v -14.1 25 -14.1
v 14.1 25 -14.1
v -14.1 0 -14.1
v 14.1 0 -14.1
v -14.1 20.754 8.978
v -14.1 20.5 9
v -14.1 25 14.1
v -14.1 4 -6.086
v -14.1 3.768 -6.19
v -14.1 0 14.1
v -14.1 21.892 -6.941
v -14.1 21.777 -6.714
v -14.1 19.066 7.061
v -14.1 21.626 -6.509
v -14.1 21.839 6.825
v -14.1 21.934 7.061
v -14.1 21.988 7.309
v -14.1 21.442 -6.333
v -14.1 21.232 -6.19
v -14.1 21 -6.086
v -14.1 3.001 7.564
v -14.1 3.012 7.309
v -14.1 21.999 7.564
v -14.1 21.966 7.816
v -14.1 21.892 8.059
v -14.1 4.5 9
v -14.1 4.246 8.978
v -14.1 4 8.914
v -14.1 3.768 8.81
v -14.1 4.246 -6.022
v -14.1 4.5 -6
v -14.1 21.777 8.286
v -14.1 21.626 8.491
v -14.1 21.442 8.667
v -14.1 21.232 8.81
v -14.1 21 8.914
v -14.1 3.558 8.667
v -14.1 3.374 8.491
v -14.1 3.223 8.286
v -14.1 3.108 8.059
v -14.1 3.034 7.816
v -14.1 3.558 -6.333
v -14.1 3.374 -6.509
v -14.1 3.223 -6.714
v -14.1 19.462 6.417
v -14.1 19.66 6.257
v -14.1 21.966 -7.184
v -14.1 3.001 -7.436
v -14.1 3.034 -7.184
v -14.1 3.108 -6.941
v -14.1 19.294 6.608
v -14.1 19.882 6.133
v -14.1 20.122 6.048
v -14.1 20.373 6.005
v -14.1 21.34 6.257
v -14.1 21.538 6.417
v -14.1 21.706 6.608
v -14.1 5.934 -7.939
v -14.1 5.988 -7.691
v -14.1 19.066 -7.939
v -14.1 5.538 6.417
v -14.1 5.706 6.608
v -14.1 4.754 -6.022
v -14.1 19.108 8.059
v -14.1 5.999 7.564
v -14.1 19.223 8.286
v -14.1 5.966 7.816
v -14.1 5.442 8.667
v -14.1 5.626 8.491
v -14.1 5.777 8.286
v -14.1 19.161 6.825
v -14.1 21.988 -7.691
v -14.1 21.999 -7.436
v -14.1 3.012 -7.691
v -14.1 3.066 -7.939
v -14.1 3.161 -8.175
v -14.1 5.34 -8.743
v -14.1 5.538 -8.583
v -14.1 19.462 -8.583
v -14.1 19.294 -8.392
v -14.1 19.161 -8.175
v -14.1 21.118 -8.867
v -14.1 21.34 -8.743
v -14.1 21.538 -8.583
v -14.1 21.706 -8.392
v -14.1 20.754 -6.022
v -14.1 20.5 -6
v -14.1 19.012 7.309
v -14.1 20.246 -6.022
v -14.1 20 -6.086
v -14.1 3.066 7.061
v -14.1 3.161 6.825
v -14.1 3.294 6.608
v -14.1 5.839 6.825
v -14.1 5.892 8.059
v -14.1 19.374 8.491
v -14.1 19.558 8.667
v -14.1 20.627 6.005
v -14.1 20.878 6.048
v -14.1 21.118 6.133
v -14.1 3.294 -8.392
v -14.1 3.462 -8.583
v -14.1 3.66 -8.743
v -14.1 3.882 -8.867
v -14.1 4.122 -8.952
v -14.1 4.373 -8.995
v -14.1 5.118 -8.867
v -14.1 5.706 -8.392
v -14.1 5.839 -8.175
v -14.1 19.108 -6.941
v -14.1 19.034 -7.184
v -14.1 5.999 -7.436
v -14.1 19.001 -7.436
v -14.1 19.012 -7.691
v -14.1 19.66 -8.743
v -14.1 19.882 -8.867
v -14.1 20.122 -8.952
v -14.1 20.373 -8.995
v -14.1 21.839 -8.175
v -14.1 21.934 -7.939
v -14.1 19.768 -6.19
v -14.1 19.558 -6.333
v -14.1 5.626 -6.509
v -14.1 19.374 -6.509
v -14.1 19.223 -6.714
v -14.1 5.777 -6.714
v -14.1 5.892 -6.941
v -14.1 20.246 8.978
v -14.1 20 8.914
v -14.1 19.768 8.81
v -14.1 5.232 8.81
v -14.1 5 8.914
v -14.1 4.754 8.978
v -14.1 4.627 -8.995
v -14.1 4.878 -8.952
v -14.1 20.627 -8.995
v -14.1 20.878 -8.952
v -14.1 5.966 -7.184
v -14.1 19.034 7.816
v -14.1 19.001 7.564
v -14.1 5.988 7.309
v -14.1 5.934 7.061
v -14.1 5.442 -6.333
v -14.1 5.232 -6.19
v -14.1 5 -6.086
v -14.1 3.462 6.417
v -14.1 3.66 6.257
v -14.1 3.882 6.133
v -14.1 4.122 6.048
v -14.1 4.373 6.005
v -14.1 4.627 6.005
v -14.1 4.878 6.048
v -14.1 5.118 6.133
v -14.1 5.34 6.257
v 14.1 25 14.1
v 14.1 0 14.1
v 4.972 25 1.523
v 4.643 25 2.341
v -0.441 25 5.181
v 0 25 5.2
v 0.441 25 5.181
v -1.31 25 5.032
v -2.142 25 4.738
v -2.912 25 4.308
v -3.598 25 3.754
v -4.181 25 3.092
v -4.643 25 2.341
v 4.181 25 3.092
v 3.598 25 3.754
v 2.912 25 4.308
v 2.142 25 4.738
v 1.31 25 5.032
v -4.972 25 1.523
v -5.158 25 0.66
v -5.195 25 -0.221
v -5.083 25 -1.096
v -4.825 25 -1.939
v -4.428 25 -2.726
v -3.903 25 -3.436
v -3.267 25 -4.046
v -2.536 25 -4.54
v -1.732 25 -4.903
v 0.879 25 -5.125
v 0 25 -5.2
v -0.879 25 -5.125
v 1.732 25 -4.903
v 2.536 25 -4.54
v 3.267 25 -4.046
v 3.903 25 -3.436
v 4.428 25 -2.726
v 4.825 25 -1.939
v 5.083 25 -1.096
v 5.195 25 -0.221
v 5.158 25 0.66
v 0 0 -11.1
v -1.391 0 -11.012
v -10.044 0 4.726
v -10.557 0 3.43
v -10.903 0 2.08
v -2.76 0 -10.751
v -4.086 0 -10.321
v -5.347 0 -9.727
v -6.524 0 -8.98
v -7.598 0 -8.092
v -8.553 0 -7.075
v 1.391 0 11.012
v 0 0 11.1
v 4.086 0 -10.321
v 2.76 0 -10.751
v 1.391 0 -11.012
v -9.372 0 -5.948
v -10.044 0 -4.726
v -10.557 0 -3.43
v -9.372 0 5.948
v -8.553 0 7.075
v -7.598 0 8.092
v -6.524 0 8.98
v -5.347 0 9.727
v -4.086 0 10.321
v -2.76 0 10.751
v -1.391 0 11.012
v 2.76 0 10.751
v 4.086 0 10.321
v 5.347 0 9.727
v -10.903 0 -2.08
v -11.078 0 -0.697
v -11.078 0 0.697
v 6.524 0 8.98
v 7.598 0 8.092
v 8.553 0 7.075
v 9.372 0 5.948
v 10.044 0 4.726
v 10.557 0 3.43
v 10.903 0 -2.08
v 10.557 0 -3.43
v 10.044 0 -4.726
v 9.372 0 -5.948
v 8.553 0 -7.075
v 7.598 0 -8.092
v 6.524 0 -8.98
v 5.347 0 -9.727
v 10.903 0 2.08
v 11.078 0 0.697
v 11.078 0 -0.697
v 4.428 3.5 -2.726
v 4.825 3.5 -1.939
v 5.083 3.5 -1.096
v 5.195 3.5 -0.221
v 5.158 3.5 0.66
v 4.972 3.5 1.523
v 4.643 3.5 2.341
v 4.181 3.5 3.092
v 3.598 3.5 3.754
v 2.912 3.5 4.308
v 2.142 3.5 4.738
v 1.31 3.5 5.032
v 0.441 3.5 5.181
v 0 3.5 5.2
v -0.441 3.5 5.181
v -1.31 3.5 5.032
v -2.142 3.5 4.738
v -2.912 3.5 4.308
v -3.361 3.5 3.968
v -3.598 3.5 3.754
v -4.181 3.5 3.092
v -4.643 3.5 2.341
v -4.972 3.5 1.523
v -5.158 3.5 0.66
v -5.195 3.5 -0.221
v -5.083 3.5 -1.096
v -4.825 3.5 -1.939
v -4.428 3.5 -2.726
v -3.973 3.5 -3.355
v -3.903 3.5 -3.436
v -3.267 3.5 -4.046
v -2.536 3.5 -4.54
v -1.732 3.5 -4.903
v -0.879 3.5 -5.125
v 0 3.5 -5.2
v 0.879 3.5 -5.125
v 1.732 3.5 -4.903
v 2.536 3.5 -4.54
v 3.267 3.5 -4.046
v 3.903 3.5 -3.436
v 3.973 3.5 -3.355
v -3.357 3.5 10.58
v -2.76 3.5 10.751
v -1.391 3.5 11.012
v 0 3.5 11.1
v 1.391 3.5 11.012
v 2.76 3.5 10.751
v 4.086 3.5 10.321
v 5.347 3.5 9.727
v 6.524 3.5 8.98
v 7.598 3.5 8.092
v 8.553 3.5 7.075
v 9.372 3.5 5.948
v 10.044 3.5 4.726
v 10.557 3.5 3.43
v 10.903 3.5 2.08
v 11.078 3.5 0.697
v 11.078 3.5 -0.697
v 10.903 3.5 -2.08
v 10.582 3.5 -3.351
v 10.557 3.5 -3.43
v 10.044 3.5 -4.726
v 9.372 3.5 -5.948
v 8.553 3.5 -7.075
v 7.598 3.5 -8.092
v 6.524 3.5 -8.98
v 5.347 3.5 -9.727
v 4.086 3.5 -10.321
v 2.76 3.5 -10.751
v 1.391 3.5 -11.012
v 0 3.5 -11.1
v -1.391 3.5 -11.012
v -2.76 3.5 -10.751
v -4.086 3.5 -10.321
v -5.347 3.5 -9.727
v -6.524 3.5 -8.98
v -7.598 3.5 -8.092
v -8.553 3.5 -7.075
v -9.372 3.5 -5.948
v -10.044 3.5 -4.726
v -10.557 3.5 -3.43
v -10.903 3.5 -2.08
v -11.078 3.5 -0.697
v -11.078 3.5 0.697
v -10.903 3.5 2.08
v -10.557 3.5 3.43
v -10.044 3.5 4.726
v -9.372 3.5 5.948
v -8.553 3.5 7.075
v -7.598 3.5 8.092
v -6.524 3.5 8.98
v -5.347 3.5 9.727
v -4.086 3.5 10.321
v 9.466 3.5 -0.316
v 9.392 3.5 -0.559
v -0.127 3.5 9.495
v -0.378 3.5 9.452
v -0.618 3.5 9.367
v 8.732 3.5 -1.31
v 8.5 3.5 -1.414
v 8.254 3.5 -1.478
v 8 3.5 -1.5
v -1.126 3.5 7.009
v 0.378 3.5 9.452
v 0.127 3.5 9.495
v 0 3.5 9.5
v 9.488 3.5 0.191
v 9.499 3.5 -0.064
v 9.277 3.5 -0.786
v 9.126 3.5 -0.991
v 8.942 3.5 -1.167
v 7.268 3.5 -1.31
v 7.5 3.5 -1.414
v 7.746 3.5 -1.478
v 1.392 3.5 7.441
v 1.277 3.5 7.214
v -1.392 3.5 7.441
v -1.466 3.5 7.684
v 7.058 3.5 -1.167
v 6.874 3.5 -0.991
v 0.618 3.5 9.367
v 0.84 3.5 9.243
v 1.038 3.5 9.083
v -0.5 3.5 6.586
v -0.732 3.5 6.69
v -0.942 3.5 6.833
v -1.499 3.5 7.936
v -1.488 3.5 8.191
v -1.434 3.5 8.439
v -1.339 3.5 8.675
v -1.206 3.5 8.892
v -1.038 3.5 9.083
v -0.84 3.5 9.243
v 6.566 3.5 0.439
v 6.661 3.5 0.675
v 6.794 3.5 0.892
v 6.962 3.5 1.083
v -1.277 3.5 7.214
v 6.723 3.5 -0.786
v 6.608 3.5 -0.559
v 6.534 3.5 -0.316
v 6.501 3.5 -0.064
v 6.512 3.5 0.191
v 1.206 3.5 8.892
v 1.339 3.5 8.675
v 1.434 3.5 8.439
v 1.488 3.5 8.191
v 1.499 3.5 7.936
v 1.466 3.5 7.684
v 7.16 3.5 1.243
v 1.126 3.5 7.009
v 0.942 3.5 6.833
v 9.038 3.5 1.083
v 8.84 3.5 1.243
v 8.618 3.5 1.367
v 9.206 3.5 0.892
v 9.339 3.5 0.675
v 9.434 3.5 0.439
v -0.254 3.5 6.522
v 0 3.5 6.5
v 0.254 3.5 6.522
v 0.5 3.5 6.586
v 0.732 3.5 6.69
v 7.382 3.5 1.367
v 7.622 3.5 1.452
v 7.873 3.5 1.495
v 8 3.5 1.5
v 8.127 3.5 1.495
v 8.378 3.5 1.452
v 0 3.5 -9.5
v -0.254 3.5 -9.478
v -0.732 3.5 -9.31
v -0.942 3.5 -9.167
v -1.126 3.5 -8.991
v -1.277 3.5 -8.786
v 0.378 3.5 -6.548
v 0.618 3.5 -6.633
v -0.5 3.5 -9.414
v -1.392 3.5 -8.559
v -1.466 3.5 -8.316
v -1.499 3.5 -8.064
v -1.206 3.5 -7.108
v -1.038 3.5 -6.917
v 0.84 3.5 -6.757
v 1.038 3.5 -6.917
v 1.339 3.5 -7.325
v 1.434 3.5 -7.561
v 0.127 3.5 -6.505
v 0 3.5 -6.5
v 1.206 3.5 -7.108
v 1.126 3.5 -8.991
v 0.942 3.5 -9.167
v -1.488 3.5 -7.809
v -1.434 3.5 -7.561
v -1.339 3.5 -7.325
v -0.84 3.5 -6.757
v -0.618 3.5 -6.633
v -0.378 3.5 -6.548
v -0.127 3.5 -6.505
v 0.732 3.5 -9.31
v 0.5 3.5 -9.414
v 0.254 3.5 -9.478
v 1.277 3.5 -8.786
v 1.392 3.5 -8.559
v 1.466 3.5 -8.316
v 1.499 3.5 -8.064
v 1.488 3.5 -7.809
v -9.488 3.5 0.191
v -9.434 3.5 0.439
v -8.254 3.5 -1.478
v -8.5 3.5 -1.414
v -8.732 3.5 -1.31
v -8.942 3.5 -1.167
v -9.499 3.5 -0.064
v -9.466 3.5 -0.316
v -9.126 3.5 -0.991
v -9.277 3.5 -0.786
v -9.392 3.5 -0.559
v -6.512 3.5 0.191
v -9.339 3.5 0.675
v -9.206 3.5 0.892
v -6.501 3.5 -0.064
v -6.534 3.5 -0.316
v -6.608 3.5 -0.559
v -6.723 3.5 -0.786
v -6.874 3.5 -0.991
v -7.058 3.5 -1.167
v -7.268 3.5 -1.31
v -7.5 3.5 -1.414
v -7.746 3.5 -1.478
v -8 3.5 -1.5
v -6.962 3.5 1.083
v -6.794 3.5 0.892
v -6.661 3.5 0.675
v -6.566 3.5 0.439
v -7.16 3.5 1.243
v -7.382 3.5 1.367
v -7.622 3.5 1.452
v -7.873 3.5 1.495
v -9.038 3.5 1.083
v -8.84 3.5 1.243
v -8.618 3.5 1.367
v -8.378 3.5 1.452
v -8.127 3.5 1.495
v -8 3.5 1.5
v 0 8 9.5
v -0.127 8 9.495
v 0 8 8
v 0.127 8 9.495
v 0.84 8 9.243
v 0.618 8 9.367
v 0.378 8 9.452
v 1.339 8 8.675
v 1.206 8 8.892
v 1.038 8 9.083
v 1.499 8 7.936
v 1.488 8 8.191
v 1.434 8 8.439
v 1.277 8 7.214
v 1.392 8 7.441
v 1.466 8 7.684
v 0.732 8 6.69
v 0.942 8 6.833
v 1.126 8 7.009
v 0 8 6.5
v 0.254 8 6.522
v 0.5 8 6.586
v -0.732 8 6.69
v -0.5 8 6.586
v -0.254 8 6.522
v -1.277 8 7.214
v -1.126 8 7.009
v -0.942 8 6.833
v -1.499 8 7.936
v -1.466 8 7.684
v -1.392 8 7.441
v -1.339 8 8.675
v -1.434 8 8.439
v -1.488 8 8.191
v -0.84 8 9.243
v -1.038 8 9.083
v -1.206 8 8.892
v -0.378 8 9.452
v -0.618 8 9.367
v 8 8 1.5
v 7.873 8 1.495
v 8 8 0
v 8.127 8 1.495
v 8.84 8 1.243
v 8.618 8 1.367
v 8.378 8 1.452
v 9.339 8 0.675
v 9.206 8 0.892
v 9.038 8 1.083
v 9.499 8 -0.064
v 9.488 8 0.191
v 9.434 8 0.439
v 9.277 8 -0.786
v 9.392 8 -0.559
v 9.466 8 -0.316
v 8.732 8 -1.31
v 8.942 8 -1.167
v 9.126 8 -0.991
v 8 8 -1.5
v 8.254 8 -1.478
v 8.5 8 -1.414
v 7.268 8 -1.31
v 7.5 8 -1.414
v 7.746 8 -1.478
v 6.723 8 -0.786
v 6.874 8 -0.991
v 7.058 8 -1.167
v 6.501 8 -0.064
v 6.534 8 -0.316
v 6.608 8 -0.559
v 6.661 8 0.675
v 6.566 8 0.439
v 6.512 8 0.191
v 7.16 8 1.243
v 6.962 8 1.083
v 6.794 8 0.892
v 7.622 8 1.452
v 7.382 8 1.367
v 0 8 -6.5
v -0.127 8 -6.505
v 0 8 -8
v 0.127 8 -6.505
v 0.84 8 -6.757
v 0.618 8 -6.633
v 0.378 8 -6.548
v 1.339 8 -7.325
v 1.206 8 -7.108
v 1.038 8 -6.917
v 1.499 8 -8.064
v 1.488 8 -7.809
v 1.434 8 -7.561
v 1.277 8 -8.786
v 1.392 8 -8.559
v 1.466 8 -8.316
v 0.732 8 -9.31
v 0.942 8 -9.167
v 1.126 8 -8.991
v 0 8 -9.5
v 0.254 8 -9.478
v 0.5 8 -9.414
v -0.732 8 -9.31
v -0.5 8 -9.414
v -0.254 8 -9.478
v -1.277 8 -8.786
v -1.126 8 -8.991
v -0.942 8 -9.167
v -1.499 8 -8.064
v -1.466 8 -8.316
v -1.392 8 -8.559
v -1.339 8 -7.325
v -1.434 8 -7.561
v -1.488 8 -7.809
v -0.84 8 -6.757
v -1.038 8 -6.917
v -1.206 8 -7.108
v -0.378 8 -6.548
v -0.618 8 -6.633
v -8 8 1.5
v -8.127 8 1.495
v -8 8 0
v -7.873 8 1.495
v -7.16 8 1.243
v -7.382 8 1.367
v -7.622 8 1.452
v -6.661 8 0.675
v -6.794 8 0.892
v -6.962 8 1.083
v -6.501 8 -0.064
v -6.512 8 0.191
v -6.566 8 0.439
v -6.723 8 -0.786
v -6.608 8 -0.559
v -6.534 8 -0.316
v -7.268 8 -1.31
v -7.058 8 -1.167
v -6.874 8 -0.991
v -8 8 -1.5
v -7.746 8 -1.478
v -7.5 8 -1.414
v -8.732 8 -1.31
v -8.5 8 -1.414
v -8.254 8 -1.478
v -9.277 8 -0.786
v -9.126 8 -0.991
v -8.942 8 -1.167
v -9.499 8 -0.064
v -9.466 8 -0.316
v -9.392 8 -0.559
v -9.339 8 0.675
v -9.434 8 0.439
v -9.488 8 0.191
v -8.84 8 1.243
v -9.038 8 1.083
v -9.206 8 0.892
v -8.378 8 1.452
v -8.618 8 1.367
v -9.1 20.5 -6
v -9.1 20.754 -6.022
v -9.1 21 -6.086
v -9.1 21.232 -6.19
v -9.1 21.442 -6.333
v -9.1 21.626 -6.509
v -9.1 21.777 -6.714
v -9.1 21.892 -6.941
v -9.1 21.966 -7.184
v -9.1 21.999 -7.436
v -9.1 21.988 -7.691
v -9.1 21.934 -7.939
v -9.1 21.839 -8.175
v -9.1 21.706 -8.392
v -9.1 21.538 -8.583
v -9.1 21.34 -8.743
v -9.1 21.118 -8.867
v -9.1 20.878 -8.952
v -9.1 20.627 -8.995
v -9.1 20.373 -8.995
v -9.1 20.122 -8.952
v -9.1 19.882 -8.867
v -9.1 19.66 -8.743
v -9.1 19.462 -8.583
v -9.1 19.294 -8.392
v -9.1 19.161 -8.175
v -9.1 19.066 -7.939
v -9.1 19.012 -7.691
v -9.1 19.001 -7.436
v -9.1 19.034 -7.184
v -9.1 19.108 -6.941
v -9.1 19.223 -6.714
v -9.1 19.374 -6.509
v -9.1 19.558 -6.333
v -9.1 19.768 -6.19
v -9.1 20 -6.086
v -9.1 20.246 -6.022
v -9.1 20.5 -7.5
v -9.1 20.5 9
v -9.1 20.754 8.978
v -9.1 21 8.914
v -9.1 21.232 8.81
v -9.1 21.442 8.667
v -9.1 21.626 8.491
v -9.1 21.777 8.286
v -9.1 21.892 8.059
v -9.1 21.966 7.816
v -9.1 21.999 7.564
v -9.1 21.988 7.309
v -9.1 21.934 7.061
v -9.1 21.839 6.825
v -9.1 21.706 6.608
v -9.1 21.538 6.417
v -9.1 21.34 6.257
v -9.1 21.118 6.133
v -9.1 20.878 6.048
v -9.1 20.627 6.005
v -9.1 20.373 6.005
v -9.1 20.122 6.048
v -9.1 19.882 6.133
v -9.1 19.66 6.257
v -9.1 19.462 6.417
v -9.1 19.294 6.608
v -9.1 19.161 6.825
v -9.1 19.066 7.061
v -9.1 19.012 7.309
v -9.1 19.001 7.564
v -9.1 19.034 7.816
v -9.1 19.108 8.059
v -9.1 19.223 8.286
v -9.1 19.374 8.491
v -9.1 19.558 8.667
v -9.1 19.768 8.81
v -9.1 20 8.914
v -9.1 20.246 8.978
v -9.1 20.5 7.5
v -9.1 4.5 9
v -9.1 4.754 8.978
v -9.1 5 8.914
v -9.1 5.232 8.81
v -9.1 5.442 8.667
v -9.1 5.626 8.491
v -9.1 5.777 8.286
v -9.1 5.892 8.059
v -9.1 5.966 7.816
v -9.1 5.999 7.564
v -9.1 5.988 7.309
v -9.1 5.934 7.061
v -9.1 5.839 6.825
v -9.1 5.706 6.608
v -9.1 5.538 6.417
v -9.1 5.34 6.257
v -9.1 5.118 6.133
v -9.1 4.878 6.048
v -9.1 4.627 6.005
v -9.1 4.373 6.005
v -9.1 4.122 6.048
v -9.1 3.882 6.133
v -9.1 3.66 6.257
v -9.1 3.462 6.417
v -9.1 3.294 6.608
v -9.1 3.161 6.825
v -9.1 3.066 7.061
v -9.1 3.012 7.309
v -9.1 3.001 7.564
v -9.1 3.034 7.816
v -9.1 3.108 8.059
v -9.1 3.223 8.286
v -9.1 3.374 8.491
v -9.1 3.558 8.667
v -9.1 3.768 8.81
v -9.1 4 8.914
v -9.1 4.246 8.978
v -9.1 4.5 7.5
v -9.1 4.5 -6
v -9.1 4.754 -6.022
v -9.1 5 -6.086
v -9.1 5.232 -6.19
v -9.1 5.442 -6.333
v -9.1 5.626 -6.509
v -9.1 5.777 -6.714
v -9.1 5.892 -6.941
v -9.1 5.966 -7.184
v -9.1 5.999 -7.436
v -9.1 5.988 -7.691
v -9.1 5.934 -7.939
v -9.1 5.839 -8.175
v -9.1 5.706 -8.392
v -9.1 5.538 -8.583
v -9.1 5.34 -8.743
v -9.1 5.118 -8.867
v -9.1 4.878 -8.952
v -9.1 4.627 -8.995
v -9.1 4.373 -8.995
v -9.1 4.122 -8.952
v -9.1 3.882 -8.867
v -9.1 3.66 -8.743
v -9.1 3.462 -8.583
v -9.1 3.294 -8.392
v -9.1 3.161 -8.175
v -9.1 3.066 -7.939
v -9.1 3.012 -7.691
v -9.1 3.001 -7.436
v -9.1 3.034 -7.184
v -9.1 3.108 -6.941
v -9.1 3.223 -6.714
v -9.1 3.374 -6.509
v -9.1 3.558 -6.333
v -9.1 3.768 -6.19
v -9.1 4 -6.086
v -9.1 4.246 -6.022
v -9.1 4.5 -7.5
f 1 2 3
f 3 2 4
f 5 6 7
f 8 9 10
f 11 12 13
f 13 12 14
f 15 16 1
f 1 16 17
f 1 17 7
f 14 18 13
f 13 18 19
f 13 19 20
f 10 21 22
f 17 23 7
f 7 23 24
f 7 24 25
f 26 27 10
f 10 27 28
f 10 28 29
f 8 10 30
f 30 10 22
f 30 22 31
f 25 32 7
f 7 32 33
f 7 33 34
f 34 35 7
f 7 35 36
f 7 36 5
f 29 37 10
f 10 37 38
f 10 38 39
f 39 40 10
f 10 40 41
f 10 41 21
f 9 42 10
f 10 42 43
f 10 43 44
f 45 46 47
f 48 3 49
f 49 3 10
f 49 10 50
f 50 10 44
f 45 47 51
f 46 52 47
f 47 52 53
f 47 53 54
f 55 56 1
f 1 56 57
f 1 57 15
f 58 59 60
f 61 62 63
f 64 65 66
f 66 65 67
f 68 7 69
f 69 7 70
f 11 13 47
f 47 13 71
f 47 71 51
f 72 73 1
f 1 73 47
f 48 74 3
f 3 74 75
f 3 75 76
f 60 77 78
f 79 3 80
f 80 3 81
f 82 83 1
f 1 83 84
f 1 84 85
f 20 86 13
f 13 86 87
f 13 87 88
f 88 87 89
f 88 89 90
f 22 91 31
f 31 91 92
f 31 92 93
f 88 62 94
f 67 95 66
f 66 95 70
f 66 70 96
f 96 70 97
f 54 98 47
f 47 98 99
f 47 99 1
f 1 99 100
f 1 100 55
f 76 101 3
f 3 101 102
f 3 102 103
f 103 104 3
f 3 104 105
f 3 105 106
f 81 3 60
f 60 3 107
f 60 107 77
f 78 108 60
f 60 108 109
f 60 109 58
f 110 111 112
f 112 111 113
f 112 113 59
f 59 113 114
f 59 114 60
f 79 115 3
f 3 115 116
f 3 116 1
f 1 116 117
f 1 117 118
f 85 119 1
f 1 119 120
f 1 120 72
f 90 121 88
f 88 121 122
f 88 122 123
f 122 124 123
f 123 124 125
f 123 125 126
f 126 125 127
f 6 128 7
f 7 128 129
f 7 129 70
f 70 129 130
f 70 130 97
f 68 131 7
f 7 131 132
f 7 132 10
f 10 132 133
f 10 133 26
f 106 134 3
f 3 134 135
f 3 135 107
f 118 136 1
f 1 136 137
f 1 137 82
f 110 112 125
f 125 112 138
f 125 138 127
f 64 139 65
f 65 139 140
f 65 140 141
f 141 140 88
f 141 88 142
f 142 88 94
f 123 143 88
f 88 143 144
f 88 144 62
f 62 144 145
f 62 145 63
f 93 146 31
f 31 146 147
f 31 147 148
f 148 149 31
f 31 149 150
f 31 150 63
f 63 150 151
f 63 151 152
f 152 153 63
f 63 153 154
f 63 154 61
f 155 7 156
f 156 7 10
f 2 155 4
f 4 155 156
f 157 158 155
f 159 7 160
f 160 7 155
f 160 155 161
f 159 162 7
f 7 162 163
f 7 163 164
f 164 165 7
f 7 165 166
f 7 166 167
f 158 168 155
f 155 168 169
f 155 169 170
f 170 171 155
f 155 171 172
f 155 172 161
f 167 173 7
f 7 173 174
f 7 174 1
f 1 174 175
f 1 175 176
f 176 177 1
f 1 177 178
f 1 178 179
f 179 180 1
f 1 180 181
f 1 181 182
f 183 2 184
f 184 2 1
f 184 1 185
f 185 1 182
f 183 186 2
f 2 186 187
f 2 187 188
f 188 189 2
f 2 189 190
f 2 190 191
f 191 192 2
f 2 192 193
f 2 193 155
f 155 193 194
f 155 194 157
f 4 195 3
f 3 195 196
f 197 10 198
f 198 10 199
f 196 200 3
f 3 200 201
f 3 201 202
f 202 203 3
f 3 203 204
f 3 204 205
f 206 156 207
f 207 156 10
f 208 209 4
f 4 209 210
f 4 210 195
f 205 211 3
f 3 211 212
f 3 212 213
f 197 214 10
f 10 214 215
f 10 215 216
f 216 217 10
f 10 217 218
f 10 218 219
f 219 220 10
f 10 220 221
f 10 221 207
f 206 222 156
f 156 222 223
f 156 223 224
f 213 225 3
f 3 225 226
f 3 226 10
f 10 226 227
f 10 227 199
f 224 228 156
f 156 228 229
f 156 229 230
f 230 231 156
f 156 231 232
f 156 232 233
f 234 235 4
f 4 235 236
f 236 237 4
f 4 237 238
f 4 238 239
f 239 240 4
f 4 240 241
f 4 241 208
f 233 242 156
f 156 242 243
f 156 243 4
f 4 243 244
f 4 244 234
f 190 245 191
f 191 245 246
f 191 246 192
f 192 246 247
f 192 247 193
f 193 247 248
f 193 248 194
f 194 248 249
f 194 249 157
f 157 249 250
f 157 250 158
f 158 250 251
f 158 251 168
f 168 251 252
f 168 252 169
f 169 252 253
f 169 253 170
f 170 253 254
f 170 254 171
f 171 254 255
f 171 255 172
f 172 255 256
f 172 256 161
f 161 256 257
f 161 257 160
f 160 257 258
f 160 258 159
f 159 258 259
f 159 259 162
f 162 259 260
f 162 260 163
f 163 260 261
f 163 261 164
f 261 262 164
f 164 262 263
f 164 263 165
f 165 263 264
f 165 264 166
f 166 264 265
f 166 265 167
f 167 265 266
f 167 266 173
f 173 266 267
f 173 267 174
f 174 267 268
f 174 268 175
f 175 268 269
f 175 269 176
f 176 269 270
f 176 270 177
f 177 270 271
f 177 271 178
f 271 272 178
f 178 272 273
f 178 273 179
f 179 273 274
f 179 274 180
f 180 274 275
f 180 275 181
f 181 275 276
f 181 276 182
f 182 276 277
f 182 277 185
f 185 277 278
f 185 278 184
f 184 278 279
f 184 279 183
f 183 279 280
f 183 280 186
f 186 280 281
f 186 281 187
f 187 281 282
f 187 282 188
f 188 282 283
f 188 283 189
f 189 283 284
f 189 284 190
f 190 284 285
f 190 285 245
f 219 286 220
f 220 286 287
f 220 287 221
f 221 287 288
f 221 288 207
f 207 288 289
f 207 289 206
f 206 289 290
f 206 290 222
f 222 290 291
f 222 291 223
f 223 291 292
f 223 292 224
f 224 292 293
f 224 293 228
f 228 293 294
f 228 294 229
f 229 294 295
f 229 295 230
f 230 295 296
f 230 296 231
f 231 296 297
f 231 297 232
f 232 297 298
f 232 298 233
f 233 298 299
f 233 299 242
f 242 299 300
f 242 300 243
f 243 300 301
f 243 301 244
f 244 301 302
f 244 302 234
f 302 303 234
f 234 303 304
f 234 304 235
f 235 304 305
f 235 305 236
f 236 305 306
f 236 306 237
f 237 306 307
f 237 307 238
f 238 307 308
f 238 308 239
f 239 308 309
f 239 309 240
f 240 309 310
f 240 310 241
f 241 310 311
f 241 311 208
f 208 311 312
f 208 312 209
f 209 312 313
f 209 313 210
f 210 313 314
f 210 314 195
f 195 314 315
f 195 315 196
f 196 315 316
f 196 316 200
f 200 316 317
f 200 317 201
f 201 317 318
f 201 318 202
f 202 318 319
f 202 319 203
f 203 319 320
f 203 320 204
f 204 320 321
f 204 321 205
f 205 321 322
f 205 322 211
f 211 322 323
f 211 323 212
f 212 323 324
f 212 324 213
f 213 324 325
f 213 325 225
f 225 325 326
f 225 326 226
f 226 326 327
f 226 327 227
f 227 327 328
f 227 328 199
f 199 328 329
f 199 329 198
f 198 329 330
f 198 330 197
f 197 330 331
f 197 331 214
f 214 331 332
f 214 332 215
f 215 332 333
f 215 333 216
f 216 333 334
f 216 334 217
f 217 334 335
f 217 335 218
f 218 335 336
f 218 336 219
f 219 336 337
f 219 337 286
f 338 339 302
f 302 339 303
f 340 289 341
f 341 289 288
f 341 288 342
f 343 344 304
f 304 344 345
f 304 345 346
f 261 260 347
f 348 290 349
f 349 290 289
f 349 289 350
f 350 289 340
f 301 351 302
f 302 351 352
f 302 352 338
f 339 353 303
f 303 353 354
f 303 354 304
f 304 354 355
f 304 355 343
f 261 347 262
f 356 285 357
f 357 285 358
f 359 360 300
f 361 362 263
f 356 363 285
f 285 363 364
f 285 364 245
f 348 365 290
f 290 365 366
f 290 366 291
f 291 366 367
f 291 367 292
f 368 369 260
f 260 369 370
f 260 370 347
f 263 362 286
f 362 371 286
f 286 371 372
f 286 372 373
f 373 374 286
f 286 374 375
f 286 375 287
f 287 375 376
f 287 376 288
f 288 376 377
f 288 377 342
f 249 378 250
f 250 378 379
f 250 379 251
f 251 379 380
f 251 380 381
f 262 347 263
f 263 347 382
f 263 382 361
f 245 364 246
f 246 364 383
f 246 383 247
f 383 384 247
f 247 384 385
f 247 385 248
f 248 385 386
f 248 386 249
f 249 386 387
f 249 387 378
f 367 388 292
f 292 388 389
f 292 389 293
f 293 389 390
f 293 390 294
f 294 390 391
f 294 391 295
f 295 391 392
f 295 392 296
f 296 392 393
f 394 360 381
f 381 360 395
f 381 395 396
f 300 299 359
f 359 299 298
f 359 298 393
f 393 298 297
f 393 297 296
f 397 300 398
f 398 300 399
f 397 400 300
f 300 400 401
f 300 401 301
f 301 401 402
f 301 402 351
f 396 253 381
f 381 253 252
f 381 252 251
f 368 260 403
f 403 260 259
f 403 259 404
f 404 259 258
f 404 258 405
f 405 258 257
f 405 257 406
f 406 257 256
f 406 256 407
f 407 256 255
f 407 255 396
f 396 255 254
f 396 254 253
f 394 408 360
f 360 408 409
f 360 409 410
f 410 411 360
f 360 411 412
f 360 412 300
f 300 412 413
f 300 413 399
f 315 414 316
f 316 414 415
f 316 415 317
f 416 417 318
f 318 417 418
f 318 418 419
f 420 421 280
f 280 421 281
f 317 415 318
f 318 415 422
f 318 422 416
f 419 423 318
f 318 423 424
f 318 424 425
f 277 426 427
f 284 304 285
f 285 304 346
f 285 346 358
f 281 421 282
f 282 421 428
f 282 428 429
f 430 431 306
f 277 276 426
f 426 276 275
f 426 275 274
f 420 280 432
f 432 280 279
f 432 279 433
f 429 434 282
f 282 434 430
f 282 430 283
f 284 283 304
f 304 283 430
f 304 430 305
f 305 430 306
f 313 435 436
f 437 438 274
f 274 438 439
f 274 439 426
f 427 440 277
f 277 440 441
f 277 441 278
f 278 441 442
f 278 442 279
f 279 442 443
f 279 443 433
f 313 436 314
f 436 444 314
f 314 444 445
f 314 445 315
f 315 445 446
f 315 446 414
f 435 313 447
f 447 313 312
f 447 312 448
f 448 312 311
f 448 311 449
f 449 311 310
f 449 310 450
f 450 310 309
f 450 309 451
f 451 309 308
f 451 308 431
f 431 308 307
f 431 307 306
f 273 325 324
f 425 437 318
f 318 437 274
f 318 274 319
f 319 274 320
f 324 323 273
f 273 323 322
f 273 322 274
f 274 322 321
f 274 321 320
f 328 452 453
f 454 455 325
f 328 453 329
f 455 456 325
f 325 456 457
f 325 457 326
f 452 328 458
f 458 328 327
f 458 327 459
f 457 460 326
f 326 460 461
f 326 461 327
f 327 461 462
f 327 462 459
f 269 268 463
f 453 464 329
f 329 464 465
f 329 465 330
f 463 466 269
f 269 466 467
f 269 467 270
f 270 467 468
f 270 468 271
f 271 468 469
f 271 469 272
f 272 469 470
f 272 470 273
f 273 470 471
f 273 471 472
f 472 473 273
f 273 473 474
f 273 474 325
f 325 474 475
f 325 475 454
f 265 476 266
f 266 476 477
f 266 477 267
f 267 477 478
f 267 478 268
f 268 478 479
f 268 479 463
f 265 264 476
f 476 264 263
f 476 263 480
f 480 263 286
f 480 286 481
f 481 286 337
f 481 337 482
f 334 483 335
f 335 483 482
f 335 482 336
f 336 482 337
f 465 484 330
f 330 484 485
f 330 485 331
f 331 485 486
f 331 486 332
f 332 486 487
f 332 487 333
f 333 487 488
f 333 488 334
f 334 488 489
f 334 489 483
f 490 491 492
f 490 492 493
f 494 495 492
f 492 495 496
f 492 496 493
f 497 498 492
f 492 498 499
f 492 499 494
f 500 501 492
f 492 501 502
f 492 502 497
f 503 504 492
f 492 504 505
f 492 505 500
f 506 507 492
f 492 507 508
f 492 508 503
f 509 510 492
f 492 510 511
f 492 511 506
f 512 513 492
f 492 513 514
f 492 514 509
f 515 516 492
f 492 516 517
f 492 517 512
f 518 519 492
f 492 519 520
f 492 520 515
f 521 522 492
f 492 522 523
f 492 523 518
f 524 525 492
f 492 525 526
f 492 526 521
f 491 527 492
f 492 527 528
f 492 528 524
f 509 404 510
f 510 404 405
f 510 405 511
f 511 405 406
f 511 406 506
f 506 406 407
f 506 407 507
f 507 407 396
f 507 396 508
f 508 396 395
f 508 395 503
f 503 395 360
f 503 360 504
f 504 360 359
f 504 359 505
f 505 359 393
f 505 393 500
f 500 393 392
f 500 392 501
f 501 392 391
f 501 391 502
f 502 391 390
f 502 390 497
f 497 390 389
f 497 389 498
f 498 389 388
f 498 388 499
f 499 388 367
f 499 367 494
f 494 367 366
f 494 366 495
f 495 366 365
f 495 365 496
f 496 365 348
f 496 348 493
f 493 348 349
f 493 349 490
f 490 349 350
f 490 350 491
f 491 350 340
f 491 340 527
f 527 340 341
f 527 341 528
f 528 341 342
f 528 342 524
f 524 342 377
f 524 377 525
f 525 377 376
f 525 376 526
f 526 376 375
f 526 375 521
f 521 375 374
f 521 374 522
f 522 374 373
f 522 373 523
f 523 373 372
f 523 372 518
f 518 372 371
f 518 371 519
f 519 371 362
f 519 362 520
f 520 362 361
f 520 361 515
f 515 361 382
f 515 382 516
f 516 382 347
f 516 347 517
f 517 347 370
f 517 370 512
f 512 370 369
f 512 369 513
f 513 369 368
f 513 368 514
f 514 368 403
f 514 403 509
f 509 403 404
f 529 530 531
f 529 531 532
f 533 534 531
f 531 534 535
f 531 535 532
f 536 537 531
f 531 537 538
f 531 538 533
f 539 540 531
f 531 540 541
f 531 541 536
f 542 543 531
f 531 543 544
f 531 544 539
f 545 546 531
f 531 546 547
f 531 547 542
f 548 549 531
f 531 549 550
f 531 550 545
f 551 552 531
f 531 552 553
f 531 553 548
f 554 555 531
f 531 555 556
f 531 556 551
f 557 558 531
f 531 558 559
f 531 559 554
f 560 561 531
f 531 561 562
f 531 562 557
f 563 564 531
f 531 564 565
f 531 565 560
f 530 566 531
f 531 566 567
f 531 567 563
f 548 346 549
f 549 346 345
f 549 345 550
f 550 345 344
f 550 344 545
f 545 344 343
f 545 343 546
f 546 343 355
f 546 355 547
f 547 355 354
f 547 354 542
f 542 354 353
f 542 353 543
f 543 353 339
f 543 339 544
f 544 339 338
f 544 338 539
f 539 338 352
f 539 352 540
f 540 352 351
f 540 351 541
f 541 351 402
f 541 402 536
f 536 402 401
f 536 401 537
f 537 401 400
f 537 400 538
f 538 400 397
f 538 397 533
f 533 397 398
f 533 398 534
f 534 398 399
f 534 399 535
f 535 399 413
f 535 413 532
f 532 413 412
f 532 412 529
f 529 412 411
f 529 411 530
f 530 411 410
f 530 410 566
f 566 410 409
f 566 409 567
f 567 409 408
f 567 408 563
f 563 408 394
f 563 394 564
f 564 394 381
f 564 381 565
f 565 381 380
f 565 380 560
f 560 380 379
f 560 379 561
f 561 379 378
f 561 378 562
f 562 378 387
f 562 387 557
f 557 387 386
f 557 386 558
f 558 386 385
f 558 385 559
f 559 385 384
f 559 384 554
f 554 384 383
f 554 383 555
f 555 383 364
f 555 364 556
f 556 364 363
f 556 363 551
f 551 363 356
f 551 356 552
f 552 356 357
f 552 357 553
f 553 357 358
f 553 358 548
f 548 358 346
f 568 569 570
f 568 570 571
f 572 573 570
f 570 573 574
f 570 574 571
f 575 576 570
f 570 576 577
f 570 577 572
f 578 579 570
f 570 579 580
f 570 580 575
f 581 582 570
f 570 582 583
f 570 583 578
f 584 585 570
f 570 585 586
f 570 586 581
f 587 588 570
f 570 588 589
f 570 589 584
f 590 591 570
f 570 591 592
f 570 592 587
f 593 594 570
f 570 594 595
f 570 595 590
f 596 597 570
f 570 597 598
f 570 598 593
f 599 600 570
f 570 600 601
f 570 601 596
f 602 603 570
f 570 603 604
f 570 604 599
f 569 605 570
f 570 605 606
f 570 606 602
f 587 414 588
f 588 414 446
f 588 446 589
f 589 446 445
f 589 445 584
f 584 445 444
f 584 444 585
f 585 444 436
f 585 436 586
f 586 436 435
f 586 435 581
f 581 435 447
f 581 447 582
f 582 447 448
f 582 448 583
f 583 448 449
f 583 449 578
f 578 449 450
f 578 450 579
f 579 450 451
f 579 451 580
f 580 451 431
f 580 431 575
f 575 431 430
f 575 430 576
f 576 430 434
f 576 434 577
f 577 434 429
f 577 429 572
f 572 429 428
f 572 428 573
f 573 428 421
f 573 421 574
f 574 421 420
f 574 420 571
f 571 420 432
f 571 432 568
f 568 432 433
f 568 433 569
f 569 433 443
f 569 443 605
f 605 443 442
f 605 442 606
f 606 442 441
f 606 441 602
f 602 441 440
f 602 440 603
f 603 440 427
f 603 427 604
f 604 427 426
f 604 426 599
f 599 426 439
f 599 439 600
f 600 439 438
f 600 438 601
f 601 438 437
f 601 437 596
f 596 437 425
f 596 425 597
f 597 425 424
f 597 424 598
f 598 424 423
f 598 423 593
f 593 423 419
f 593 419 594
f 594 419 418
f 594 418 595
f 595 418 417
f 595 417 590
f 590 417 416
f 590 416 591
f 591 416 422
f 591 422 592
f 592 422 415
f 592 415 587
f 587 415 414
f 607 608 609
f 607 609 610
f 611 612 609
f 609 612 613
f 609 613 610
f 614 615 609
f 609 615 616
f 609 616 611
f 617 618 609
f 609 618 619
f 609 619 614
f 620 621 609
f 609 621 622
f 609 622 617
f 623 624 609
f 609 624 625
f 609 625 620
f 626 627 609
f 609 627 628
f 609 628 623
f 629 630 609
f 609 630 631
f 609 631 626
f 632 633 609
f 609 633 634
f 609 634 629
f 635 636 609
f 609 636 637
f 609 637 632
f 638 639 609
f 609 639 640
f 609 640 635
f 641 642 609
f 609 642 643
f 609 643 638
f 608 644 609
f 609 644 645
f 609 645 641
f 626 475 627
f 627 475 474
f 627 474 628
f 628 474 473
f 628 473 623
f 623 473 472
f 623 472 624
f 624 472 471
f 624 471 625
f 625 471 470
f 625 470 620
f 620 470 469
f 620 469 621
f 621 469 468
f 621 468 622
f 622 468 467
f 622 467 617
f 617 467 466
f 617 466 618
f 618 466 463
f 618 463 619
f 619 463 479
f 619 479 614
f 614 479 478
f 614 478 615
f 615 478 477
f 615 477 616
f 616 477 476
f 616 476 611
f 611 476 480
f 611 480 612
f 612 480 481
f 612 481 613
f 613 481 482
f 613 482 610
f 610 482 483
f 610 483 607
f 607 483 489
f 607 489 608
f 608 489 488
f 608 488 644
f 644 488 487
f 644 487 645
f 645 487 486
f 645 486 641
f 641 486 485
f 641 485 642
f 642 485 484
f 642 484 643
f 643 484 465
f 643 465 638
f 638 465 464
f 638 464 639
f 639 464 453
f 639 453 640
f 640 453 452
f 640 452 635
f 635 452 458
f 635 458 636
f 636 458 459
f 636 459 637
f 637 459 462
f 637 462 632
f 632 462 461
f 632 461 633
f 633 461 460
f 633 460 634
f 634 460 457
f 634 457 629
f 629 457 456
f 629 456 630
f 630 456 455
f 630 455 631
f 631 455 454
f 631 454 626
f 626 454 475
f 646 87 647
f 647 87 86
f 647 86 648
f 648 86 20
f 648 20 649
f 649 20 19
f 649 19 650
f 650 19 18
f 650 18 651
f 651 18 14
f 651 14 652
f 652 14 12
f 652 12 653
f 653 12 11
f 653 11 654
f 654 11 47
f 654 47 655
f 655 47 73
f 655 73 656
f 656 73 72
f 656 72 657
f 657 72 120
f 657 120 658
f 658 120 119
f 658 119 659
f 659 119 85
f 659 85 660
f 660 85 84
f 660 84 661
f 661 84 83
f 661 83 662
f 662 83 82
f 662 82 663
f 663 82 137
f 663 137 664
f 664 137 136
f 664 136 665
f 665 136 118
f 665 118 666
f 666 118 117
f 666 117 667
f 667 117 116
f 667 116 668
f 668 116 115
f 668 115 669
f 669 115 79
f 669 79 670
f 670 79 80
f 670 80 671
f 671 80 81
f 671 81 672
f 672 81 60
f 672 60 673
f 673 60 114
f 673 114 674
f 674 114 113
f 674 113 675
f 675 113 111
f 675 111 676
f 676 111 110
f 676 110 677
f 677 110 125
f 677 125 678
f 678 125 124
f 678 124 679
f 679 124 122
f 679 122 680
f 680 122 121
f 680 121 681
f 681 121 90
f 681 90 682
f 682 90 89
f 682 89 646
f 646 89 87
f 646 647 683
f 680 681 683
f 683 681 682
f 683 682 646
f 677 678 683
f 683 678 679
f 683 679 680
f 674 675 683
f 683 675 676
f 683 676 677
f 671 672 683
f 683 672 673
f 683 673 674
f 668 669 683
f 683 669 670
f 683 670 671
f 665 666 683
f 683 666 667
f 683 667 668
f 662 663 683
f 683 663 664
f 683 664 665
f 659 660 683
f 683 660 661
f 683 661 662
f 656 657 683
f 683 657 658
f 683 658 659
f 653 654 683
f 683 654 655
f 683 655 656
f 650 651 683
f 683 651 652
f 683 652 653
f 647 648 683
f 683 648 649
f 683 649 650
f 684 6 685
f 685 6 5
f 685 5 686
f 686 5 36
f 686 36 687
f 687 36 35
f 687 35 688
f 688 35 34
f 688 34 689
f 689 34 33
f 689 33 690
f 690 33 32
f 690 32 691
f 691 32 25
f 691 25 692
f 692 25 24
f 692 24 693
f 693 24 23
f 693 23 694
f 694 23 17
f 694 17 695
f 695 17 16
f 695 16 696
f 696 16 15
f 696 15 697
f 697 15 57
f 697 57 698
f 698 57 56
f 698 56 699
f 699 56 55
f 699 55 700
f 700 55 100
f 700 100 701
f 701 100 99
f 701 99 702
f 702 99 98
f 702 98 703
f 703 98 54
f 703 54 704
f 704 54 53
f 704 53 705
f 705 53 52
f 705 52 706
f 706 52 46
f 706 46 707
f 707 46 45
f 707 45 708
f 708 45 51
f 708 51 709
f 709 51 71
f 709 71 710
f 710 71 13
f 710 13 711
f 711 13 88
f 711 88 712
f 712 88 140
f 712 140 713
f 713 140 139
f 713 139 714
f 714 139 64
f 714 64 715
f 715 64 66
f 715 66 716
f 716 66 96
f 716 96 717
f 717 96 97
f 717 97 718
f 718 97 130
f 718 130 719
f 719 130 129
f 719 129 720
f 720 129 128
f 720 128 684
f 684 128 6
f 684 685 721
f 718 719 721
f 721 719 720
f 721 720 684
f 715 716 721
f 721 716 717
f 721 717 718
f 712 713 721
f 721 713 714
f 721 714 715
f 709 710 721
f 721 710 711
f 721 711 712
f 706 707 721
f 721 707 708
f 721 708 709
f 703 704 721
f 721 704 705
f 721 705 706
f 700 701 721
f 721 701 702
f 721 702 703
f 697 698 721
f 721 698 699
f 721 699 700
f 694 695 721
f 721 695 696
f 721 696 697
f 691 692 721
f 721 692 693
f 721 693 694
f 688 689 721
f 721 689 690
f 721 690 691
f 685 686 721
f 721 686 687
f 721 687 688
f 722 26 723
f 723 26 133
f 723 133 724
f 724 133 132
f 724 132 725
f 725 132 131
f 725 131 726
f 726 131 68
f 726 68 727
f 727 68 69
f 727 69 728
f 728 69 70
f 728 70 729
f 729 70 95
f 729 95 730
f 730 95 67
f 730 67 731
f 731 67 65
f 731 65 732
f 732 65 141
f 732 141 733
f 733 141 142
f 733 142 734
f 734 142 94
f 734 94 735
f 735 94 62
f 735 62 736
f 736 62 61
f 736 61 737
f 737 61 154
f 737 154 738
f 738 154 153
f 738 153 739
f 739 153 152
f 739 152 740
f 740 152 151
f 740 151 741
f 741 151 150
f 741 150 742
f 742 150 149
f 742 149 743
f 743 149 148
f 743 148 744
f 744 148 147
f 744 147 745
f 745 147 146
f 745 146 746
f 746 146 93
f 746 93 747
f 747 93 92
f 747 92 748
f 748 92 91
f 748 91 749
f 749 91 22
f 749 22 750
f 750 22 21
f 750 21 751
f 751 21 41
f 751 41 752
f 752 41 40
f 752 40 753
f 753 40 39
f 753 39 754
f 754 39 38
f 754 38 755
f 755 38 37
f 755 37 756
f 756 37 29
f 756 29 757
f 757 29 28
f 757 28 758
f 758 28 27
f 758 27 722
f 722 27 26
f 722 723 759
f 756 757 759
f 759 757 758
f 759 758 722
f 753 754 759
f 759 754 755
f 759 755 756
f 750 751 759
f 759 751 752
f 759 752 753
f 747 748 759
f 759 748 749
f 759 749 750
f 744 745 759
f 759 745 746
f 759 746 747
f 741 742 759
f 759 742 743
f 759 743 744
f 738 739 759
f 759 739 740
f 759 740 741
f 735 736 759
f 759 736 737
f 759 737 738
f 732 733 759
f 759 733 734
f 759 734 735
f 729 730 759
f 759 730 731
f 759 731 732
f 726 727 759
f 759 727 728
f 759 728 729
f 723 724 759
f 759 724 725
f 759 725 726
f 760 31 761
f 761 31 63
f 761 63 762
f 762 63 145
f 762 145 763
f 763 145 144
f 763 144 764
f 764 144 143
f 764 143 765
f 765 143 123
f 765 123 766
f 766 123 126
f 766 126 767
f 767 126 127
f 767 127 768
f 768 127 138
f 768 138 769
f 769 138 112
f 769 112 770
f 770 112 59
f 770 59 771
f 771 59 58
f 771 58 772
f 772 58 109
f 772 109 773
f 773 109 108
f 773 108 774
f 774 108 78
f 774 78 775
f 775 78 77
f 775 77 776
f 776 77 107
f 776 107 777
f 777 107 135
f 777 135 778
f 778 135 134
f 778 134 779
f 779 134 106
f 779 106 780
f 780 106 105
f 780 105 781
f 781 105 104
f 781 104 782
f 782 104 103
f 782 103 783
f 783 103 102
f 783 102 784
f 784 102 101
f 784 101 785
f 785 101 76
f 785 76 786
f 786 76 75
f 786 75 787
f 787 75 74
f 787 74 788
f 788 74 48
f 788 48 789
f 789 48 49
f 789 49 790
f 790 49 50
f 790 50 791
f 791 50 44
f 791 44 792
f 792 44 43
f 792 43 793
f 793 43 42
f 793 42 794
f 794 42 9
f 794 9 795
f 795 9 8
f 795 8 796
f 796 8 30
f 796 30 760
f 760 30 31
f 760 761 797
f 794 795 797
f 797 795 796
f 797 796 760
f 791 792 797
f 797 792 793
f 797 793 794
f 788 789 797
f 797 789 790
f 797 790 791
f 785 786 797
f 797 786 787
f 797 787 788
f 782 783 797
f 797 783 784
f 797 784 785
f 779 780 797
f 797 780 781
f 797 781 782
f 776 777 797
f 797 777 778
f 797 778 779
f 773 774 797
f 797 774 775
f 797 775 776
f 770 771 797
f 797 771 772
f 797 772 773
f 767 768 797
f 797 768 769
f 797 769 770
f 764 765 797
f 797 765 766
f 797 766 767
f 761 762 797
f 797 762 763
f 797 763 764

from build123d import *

# Parameters (mm, degrees)
SKETCH1_W           = 28.2
SKETCH1_H           = 28.2
BOSS_EXTRUDE1_DEPTH = 25
SKETCH1_4_R         = 5.2
CUT_EXTRUDE1_DEPTH  = 25
SKETCH1_5_R         = 1.5
CUT_EXTRUDE2_DEPTH  = 8
SKETCH1_6_R         = 11.1
SKETCH1_6_R_2       = 1.5
SKETCH1_6_R_3       = 5.2
CUT_EXTRUDE3_DEPTH  = 3.5
SKETCH2_R           = 1.5
CUT_EXTRUDE4_DEPTH  = 5


with BuildPart() as part:
    # Sketch1 → Boss-Extrude1 (new body)
    with BuildSketch(Plane(origin=(0, 0, 0), x_dir=(1, 0, 0), z_dir=(0, 1, 0))):
        Rectangle(SKETCH1_W, SKETCH1_H)
    extrude(amount=BOSS_EXTRUDE1_DEPTH)

    # Sketch1<4> → Cut-Extrude1 (cut)
    with BuildSketch(Plane(origin=(0, 0, 0), x_dir=(1, 0, 0), z_dir=(0, 1, 0))):
        Circle(SKETCH1_4_R)
    extrude(amount=CUT_EXTRUDE1_DEPTH, mode=Mode.SUBTRACT)

    # Sketch1<5> → Cut-Extrude2 (cut)
    with BuildSketch(Plane(origin=(0, 0, 0), x_dir=(1, 0, 0), z_dir=(0, 1, 0))):
        with Locations((8, 0)):
            Circle(SKETCH1_5_R)
        with Locations((0, -8)):
            Circle(SKETCH1_5_R)
        with Locations((-8, 0)):
            Circle(SKETCH1_5_R)
        with Locations((0, 8)):
            Circle(SKETCH1_5_R)
    extrude(amount=CUT_EXTRUDE2_DEPTH, mode=Mode.SUBTRACT)

    # Sketch1<6> → Cut-Extrude3 (cut)
    with BuildSketch(Plane(origin=(0, 0, 0), x_dir=(1, 0, 0), z_dir=(0, 1, 0))):
        Circle(SKETCH1_6_R)
        with Locations((0, -8)):
            Circle(SKETCH1_6_R_2, mode=Mode.SUBTRACT)
        Circle(SKETCH1_6_R_3, mode=Mode.SUBTRACT)
        with Locations((8, 0)):
            Circle(SKETCH1_6_R_2, mode=Mode.SUBTRACT)
        with Locations((-8, 0)):
            Circle(SKETCH1_6_R_2, mode=Mode.SUBTRACT)
        with Locations((0, 8)):
            Circle(SKETCH1_6_R_2, mode=Mode.SUBTRACT)
    extrude(amount=CUT_EXTRUDE3_DEPTH, mode=Mode.SUBTRACT)

    # Sketch2 → Cut-Extrude4 (cut)
    with BuildSketch(Plane.ZY.offset(14.1)):
        with Locations((-7.5, 20.5)):
            Circle(SKETCH2_R)
        with Locations((7.5, 20.5)):
            Circle(SKETCH2_R)
        with Locations((7.5, 4.5)):
            Circle(SKETCH2_R)
        with Locations((-7.5, 4.5)):
            Circle(SKETCH2_R)
    extrude(amount=-CUT_EXTRUDE4_DEPTH, mode=Mode.SUBTRACT)


solid = part.part
